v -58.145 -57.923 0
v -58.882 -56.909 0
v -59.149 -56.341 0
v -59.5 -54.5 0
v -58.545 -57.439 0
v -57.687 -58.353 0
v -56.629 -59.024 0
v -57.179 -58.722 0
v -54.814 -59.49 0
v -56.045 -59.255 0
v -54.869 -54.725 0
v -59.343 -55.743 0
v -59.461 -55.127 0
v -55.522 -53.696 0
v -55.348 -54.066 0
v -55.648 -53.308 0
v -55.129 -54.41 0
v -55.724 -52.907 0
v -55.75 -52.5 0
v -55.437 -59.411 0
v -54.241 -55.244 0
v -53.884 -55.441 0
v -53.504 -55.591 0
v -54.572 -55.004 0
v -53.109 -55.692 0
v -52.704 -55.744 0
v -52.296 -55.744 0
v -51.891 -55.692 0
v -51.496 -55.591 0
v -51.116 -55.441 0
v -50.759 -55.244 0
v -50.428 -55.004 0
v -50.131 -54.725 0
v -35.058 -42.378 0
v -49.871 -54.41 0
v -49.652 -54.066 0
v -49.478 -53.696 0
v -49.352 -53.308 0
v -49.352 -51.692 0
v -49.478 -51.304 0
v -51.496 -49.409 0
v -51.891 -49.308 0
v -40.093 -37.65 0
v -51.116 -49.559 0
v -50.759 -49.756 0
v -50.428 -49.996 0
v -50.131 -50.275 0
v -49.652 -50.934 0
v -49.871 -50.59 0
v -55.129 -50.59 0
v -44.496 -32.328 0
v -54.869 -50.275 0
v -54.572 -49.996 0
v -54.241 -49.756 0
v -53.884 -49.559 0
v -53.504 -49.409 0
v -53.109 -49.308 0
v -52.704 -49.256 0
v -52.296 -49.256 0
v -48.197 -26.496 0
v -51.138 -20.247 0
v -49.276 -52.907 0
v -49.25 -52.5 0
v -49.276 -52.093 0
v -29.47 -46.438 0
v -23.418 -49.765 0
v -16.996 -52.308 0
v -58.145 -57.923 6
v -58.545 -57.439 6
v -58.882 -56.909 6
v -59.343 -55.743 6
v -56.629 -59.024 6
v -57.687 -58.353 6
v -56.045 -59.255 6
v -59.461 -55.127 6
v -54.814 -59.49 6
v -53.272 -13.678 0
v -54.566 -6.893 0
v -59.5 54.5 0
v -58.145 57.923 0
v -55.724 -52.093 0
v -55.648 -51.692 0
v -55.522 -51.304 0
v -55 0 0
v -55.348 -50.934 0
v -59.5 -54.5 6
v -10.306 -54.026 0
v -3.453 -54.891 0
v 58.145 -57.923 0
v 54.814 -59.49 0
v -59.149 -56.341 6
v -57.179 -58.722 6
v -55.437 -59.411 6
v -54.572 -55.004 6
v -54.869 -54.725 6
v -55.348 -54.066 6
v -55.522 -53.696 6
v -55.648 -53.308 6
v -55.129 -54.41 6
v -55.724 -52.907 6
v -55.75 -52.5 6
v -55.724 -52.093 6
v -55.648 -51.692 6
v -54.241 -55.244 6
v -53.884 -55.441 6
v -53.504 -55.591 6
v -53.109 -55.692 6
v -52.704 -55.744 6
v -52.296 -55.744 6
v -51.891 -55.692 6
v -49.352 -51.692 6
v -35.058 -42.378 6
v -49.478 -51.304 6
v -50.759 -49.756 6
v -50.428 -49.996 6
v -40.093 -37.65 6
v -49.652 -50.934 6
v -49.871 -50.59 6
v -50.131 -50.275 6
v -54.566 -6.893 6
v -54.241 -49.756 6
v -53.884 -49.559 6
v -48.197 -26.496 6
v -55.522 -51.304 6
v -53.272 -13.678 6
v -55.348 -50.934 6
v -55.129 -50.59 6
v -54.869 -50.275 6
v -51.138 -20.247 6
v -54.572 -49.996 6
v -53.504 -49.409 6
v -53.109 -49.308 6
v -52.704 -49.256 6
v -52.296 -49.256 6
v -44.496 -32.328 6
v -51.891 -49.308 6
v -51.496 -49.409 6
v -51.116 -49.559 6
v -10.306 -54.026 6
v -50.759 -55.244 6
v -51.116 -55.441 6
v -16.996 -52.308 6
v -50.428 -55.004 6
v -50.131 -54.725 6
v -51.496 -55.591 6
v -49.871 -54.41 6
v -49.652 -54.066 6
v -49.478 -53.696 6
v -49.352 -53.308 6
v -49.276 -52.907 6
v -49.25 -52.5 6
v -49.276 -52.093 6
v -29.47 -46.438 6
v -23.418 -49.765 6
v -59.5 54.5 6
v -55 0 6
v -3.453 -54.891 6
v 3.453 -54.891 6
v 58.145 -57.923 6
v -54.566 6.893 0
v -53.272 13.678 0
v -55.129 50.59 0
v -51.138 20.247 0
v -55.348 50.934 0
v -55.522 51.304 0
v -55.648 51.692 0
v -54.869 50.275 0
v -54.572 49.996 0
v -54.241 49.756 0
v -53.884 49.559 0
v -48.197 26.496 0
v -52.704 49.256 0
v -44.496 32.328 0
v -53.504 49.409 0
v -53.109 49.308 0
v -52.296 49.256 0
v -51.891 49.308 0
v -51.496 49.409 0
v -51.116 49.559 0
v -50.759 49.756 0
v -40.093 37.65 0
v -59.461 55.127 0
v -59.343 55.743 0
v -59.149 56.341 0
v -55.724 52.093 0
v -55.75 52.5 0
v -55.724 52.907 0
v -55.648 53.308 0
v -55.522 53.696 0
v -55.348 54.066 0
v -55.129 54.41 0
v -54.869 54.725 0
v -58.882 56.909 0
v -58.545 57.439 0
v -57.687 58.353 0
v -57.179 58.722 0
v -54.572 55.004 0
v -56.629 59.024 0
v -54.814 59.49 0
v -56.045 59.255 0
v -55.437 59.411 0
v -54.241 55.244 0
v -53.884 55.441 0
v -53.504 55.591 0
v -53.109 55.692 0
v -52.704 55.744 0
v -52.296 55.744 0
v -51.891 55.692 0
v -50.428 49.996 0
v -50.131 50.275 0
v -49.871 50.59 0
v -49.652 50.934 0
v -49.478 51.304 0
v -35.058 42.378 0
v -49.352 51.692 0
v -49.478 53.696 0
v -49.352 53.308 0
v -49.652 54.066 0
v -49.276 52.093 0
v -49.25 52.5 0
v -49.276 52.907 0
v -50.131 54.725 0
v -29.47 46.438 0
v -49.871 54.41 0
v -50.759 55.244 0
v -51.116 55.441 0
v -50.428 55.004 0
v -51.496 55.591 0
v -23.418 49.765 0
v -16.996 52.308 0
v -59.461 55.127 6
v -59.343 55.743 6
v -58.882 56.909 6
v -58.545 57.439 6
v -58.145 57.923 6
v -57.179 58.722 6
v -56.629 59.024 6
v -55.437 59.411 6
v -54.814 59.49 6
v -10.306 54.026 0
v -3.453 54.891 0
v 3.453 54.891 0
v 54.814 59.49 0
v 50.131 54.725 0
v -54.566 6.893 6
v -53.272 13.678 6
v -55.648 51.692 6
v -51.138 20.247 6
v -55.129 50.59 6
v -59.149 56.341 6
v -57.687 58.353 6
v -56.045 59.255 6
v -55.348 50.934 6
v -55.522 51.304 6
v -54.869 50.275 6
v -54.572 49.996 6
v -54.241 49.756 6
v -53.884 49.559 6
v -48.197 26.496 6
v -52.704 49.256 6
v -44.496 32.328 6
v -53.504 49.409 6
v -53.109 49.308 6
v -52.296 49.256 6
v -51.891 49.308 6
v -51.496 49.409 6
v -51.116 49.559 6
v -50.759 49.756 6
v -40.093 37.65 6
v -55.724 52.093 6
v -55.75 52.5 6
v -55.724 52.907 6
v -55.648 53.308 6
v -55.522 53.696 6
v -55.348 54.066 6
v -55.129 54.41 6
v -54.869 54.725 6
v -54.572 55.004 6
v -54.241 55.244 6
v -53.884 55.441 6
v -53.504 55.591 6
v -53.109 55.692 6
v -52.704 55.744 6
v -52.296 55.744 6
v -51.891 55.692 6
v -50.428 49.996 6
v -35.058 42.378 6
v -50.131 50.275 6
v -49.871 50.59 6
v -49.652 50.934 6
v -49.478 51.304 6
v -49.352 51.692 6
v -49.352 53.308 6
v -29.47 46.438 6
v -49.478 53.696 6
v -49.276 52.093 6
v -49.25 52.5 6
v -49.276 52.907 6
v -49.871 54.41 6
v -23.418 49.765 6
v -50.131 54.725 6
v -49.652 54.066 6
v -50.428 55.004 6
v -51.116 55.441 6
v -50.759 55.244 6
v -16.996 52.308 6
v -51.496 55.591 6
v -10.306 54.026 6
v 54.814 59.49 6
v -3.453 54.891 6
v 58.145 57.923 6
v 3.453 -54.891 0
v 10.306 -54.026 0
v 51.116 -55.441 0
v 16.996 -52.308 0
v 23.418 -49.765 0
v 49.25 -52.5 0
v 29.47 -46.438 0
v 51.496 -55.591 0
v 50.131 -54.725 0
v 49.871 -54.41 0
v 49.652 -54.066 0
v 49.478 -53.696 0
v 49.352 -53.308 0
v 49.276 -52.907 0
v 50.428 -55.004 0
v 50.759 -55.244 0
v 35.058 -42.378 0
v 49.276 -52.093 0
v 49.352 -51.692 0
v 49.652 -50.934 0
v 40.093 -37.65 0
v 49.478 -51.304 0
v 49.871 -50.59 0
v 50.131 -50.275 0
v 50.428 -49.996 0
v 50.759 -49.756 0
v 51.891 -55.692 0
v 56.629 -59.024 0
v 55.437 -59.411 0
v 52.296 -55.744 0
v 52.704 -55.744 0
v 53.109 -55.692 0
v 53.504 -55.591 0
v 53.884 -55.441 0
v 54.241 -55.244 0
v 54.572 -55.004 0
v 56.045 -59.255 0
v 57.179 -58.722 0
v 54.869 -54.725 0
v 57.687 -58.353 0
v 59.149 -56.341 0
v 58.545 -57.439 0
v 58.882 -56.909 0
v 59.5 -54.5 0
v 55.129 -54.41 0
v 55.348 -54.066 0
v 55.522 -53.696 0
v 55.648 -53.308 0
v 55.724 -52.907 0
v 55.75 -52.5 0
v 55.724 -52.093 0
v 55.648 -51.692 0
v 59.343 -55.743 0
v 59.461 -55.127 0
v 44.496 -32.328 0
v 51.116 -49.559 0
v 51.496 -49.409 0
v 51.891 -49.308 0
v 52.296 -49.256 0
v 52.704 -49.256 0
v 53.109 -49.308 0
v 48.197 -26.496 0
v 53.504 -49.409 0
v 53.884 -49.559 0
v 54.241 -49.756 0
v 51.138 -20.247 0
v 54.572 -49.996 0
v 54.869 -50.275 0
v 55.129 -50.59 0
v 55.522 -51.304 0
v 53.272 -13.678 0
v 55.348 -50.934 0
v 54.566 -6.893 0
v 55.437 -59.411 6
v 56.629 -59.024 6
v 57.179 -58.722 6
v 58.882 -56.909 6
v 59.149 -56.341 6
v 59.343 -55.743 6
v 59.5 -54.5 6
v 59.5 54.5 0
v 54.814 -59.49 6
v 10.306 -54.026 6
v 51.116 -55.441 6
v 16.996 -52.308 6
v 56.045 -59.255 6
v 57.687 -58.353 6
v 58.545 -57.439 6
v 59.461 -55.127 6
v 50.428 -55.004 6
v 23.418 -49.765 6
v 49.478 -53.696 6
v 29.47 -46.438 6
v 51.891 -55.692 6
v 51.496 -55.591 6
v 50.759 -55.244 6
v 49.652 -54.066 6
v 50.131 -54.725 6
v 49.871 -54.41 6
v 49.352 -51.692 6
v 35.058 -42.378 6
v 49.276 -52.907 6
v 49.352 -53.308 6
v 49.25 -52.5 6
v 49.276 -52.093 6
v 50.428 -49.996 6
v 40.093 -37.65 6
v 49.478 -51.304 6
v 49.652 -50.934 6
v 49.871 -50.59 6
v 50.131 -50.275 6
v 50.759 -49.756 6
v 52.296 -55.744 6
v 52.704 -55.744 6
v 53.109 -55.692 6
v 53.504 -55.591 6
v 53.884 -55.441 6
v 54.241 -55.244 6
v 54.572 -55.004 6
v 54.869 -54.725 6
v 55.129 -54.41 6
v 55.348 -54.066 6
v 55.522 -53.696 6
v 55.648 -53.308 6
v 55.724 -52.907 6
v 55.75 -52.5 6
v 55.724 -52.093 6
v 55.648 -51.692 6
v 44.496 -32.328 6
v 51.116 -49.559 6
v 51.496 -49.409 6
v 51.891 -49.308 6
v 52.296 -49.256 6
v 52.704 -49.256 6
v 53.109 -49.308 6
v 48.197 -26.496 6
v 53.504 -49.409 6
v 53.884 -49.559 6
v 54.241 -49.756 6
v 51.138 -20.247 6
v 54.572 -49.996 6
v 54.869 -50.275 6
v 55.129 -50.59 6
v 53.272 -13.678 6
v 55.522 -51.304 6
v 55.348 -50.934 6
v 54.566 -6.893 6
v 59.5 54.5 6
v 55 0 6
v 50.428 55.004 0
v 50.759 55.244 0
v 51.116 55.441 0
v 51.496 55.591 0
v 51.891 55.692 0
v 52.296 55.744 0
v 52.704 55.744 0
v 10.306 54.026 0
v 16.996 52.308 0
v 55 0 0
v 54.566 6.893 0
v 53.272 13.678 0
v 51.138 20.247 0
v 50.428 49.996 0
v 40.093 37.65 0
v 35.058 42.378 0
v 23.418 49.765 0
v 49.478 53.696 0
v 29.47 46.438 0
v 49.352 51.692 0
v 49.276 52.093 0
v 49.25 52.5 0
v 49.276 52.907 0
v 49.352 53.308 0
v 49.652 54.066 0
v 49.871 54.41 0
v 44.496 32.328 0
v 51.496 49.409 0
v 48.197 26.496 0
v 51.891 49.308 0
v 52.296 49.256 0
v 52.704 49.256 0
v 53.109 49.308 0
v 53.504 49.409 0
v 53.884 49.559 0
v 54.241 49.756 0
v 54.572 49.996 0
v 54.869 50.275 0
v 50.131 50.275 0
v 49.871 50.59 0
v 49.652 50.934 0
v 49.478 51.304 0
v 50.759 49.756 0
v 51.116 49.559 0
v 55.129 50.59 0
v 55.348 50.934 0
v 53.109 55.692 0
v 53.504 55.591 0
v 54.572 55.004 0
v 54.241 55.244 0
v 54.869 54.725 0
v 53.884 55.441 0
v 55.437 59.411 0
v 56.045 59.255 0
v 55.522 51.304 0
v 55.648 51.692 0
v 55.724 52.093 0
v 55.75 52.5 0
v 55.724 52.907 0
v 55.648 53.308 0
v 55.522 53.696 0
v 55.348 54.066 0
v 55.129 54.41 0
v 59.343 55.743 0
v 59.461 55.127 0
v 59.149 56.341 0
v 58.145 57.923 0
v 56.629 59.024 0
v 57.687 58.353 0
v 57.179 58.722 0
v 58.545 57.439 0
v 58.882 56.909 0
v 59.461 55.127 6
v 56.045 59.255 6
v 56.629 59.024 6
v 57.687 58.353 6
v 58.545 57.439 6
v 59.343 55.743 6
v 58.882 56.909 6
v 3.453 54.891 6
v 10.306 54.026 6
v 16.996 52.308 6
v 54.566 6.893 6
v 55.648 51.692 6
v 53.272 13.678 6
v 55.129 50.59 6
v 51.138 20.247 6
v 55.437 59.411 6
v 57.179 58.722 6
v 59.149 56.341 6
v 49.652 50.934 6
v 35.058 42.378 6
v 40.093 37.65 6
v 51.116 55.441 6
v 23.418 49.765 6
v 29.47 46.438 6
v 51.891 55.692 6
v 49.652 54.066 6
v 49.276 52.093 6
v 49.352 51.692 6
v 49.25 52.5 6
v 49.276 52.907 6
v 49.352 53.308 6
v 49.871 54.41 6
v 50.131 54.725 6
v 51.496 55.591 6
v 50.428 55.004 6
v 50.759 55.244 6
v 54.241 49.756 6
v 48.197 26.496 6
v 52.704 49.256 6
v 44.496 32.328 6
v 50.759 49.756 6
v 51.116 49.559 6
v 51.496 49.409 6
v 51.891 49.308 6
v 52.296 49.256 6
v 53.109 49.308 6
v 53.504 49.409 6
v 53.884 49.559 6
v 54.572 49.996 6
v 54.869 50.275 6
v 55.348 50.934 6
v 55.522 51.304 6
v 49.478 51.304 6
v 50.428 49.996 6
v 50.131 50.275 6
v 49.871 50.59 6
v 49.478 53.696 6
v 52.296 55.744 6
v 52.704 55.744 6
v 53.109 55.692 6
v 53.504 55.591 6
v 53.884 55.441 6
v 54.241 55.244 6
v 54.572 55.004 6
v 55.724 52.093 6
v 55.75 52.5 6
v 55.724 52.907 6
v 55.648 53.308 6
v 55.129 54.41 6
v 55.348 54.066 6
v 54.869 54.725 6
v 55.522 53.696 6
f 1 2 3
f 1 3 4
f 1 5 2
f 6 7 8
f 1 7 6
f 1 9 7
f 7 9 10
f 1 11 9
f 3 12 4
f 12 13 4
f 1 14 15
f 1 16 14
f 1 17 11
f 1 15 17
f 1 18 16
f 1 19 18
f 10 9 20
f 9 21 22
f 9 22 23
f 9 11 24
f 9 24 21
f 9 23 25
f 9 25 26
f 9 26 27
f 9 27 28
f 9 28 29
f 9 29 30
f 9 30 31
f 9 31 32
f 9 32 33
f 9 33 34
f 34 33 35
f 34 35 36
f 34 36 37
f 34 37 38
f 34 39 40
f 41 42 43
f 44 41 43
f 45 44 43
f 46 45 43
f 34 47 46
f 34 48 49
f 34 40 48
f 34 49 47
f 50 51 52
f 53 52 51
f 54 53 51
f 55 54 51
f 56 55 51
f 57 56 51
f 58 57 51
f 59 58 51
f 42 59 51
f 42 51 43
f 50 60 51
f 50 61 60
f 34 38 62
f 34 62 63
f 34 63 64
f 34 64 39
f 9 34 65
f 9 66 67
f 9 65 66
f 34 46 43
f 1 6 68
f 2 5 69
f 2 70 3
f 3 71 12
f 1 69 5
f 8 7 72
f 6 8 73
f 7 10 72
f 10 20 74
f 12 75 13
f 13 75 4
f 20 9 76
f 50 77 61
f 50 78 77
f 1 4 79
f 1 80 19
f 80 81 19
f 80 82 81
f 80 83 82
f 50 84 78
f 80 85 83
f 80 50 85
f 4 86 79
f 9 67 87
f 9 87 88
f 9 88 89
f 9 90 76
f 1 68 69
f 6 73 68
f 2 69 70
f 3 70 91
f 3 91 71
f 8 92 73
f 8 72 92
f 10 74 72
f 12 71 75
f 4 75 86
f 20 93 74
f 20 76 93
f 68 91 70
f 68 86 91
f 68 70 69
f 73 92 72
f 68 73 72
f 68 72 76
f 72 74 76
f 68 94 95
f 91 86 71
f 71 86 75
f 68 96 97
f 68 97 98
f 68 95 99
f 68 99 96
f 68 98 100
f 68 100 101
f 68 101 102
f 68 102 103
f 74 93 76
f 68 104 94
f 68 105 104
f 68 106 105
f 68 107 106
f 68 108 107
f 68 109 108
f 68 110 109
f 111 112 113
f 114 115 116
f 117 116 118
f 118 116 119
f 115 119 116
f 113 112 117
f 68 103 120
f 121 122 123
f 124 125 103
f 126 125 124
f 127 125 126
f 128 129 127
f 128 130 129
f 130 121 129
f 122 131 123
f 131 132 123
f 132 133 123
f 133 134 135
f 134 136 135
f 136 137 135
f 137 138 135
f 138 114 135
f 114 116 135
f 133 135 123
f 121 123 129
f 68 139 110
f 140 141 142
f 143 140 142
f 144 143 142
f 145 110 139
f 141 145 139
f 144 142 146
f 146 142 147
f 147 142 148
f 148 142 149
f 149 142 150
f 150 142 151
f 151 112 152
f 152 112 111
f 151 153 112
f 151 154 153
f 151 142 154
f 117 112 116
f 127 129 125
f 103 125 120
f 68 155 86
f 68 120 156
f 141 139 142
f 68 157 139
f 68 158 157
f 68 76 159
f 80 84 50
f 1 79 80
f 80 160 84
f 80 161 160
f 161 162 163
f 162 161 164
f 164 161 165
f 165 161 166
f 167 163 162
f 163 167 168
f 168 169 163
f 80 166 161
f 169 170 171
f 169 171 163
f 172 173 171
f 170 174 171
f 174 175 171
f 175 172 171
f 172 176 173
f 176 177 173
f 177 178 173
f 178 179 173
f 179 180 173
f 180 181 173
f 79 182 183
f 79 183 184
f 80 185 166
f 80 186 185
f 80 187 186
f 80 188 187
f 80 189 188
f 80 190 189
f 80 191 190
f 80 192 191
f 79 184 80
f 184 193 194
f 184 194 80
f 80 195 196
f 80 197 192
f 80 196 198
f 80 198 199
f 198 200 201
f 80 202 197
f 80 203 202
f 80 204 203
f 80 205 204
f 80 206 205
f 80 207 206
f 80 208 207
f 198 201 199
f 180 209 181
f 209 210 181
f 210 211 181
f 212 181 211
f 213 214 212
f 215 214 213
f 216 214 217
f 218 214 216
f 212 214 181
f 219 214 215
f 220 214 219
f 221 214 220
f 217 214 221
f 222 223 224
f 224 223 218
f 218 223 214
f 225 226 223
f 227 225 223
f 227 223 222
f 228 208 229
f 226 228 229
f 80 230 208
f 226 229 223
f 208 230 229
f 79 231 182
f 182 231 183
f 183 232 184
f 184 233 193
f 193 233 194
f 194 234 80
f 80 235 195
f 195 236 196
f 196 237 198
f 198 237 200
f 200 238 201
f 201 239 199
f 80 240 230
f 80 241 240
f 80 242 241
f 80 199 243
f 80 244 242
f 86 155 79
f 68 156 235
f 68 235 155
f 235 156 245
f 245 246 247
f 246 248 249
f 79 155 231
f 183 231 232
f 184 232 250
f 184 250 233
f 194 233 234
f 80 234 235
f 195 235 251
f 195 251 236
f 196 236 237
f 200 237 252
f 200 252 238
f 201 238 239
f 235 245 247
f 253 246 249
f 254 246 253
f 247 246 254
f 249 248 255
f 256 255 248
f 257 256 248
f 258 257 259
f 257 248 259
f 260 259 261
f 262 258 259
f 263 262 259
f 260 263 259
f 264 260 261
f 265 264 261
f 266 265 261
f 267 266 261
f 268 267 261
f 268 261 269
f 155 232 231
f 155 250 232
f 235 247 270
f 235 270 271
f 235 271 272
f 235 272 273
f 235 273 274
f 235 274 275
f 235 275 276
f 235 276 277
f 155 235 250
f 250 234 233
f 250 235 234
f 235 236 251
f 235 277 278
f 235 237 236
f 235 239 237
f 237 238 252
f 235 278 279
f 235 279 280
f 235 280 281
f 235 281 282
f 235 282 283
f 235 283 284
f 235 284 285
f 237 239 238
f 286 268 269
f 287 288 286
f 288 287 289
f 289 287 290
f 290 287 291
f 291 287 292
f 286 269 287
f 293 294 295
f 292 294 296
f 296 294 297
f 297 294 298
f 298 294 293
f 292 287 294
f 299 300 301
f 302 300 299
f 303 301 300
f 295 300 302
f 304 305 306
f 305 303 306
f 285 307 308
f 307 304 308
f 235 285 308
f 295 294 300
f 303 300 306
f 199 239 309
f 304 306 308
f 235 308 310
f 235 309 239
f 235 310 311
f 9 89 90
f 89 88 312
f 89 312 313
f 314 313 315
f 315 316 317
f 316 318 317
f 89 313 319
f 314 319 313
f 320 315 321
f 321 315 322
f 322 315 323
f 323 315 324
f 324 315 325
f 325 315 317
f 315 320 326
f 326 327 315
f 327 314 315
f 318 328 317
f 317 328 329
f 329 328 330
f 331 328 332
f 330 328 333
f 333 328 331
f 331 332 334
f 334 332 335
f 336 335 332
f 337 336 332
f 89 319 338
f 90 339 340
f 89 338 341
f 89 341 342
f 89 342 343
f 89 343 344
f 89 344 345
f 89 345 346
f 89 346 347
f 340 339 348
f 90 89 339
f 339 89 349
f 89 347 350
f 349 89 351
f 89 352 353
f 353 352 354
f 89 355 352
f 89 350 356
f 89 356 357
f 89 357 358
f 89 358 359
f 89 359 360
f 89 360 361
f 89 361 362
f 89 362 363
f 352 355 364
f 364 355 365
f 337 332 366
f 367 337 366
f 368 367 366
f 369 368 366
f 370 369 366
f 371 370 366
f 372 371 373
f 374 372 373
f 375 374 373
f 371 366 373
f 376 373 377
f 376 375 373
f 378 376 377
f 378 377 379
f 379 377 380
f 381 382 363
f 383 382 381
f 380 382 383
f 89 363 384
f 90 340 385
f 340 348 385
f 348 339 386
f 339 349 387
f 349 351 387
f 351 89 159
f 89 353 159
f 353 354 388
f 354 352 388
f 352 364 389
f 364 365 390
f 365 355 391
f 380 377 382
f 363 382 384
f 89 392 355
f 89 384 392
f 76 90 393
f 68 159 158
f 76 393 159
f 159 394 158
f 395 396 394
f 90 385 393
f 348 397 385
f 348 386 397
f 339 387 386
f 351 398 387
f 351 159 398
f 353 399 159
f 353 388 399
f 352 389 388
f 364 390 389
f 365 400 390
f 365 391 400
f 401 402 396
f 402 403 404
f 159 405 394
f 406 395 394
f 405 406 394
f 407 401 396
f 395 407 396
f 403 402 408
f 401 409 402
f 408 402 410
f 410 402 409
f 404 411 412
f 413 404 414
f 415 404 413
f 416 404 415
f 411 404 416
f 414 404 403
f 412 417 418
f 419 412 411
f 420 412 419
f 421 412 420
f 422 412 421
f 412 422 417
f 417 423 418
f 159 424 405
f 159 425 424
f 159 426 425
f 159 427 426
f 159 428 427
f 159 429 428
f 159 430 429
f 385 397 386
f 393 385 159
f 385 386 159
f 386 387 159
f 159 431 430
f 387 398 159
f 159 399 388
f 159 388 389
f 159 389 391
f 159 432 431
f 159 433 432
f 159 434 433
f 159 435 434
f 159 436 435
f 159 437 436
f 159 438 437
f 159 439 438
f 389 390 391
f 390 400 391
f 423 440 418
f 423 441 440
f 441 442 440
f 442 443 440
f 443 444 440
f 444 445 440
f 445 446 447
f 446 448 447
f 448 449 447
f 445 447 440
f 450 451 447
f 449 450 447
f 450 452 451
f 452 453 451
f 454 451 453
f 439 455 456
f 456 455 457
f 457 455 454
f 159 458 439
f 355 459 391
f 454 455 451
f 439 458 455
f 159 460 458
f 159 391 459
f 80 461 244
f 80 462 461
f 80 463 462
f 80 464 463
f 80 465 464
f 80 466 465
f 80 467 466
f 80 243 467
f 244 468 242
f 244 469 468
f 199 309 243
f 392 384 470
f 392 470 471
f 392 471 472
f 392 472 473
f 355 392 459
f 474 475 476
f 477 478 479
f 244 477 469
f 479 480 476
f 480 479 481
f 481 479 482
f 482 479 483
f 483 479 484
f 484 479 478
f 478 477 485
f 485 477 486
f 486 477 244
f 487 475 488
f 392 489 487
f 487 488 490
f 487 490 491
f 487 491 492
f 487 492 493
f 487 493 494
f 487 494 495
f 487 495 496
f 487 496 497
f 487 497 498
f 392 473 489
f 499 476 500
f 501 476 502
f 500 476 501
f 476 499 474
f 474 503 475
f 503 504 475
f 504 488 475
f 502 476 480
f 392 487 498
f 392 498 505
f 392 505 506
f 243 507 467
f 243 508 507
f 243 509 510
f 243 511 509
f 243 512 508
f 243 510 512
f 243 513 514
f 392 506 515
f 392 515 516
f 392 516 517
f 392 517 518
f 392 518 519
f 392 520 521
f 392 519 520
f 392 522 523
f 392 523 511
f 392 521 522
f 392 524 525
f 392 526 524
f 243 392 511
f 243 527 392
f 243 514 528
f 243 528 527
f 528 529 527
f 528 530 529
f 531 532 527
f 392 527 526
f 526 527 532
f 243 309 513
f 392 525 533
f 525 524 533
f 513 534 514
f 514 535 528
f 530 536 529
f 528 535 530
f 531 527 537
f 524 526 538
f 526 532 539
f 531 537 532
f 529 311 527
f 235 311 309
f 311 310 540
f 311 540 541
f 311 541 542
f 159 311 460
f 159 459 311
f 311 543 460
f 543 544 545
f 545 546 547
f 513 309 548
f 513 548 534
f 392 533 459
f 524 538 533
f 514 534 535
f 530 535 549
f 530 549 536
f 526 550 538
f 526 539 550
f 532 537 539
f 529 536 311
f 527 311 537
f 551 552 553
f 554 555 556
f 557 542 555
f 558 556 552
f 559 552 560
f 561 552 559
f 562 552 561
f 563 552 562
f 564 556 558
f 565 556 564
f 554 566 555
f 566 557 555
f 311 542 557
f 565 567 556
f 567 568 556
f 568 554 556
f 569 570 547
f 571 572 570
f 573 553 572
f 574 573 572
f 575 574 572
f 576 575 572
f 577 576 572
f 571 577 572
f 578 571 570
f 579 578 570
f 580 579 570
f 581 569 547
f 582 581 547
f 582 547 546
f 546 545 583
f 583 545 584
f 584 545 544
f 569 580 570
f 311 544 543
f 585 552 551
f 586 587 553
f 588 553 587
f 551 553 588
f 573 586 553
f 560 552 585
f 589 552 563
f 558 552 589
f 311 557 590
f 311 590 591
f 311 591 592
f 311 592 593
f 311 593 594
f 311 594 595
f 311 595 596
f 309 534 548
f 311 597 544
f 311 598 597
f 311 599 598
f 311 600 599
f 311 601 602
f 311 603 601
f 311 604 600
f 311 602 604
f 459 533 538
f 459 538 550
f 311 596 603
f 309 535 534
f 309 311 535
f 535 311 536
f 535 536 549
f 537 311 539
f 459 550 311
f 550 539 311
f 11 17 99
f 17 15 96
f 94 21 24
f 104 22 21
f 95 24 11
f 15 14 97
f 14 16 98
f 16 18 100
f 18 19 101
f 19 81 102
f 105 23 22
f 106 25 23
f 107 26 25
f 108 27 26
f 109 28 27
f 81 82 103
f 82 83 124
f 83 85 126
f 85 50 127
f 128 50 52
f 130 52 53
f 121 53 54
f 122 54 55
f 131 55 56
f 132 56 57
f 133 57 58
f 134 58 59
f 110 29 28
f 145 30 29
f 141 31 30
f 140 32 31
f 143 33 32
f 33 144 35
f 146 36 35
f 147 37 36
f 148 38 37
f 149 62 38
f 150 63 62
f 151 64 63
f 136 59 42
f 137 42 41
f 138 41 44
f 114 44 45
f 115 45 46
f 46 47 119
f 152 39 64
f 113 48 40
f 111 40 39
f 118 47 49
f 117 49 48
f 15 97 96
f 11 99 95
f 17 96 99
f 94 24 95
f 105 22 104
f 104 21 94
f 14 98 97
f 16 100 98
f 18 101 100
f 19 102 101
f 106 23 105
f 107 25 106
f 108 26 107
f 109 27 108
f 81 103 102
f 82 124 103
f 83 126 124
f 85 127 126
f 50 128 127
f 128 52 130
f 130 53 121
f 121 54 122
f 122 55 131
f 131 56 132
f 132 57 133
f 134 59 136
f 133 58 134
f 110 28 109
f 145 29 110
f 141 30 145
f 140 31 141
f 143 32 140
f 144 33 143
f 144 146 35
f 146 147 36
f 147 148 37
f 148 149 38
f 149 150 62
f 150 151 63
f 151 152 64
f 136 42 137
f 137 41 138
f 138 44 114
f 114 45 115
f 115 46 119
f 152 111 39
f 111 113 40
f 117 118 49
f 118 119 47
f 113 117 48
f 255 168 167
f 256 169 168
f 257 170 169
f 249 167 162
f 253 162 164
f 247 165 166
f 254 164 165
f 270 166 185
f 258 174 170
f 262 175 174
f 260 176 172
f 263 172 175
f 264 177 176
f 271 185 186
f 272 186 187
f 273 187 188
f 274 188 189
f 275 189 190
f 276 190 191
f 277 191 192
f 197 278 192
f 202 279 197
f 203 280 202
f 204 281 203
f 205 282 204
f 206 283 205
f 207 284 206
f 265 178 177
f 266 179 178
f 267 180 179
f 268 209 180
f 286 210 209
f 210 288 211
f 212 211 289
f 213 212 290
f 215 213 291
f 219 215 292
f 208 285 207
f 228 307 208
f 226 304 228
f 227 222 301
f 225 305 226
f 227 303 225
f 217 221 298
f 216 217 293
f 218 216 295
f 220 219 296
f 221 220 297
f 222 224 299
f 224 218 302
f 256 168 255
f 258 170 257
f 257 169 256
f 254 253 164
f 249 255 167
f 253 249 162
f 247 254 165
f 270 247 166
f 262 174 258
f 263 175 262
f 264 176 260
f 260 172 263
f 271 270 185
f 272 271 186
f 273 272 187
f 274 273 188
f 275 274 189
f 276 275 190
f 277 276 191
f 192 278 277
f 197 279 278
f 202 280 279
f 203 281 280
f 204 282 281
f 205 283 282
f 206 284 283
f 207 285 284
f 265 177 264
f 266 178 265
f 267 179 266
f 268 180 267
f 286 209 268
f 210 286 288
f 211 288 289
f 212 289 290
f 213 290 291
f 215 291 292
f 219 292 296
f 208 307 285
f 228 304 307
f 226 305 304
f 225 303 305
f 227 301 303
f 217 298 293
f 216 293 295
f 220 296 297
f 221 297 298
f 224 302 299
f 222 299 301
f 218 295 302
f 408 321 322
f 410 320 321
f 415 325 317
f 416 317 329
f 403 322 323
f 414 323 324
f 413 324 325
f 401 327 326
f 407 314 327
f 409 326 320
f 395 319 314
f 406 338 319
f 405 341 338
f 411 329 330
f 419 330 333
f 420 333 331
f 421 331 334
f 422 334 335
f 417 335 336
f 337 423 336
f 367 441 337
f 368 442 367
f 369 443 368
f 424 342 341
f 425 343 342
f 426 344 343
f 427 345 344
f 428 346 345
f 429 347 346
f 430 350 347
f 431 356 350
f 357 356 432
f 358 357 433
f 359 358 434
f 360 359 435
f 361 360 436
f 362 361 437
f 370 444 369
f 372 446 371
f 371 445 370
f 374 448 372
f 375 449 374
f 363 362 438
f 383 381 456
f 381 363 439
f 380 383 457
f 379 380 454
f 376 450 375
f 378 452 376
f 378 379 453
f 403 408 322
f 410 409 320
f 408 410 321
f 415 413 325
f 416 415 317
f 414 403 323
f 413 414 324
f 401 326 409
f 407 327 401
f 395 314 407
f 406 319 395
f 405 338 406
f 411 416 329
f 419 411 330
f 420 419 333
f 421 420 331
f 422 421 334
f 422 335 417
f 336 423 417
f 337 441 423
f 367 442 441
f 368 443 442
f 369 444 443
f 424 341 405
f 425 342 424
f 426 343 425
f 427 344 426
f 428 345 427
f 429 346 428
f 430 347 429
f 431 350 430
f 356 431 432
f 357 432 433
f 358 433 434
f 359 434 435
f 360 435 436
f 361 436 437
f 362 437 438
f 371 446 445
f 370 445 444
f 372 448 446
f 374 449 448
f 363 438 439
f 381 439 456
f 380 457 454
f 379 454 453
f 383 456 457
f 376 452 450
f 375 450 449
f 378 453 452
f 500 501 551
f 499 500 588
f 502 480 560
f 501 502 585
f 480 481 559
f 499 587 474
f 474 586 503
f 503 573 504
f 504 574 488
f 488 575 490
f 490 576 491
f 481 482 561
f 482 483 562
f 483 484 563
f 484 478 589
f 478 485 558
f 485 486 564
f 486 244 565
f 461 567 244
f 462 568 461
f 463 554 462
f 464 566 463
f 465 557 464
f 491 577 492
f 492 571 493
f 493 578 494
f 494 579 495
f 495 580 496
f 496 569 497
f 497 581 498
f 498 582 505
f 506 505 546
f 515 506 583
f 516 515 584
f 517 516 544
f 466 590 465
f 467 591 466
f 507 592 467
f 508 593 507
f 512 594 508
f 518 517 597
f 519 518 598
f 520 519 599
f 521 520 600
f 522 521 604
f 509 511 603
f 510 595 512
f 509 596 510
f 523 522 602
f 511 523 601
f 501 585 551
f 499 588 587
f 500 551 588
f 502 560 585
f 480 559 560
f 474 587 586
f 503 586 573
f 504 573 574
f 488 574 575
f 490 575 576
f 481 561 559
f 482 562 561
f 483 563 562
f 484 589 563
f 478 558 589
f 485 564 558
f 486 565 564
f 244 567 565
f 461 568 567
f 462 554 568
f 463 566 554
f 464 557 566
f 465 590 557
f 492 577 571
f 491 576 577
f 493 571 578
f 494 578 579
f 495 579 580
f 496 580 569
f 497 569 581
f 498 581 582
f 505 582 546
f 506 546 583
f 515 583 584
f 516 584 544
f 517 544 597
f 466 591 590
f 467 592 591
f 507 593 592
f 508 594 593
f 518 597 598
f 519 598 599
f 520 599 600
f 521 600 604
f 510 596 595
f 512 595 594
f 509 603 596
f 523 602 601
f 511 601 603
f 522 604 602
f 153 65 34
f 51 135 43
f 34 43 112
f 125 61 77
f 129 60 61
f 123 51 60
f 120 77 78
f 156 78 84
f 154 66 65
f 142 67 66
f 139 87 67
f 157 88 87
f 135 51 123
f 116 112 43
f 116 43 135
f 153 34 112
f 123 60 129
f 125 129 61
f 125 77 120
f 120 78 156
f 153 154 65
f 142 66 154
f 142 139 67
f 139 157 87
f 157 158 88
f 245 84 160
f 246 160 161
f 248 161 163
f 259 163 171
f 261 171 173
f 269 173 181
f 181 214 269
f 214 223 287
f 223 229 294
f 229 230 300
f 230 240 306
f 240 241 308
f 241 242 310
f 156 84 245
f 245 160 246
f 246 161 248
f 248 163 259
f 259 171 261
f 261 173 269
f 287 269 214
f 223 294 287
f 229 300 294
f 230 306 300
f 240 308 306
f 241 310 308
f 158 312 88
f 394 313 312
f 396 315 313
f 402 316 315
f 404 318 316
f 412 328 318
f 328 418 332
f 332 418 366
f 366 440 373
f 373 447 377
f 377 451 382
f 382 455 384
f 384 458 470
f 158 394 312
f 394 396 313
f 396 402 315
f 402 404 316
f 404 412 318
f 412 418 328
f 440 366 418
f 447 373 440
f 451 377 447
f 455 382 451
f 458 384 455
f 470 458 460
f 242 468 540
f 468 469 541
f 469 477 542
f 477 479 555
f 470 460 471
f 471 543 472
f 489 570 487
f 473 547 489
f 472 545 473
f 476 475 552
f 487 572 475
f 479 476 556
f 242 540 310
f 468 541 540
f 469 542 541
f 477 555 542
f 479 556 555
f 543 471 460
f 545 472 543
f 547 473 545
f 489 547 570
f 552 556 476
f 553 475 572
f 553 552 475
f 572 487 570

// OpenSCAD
$fn = 50;

difference() {
	union() {
		hull() {
			translate(v = [-54.5, 54.5, 0]) {
				cylinder(h = 6, r = 5);
			}
			translate(v = [54.5, 54.5, 0]) {
				cylinder(h = 6, r = 5);
			}
			translate(v = [-54.5, -54.5, 0]) {
				cylinder(h = 6, r = 5);
			}
			translate(v = [54.5, -54.5, 0]) {
				cylinder(h = 6, r = 5);
			}
		}
	}
	union() {
		translate(v = [-52.5, -52.5, -100.0]) {
			cylinder(h = 200, r = 3.25);
		}
		translate(v = [-52.5, 52.5, -100.0]) {
			cylinder(h = 200, r = 3.25);
		}
		translate(v = [52.5, -52.5, -100.0]) {
			cylinder(h = 200, r = 3.25);
		}
		translate(v = [52.5, 52.5, -100.0]) {
			cylinder(h = 200, r = 3.25);
		}
		translate(v = [-52.5, -52.5, -100.0]) {
			cylinder(h = 200, r = 1.8);
		}
		translate(v = [-52.5, 52.5, -100.0]) {
			cylinder(h = 200, r = 1.8);
		}
		translate(v = [52.5, -52.5, -100.0]) {
			cylinder(h = 200, r = 1.8);
		}
		translate(v = [52.5, 52.5, -100.0]) {
			cylinder(h = 200, r = 1.8);
		}
		cylinder(h = 6, r = 55.0);
	}
}
